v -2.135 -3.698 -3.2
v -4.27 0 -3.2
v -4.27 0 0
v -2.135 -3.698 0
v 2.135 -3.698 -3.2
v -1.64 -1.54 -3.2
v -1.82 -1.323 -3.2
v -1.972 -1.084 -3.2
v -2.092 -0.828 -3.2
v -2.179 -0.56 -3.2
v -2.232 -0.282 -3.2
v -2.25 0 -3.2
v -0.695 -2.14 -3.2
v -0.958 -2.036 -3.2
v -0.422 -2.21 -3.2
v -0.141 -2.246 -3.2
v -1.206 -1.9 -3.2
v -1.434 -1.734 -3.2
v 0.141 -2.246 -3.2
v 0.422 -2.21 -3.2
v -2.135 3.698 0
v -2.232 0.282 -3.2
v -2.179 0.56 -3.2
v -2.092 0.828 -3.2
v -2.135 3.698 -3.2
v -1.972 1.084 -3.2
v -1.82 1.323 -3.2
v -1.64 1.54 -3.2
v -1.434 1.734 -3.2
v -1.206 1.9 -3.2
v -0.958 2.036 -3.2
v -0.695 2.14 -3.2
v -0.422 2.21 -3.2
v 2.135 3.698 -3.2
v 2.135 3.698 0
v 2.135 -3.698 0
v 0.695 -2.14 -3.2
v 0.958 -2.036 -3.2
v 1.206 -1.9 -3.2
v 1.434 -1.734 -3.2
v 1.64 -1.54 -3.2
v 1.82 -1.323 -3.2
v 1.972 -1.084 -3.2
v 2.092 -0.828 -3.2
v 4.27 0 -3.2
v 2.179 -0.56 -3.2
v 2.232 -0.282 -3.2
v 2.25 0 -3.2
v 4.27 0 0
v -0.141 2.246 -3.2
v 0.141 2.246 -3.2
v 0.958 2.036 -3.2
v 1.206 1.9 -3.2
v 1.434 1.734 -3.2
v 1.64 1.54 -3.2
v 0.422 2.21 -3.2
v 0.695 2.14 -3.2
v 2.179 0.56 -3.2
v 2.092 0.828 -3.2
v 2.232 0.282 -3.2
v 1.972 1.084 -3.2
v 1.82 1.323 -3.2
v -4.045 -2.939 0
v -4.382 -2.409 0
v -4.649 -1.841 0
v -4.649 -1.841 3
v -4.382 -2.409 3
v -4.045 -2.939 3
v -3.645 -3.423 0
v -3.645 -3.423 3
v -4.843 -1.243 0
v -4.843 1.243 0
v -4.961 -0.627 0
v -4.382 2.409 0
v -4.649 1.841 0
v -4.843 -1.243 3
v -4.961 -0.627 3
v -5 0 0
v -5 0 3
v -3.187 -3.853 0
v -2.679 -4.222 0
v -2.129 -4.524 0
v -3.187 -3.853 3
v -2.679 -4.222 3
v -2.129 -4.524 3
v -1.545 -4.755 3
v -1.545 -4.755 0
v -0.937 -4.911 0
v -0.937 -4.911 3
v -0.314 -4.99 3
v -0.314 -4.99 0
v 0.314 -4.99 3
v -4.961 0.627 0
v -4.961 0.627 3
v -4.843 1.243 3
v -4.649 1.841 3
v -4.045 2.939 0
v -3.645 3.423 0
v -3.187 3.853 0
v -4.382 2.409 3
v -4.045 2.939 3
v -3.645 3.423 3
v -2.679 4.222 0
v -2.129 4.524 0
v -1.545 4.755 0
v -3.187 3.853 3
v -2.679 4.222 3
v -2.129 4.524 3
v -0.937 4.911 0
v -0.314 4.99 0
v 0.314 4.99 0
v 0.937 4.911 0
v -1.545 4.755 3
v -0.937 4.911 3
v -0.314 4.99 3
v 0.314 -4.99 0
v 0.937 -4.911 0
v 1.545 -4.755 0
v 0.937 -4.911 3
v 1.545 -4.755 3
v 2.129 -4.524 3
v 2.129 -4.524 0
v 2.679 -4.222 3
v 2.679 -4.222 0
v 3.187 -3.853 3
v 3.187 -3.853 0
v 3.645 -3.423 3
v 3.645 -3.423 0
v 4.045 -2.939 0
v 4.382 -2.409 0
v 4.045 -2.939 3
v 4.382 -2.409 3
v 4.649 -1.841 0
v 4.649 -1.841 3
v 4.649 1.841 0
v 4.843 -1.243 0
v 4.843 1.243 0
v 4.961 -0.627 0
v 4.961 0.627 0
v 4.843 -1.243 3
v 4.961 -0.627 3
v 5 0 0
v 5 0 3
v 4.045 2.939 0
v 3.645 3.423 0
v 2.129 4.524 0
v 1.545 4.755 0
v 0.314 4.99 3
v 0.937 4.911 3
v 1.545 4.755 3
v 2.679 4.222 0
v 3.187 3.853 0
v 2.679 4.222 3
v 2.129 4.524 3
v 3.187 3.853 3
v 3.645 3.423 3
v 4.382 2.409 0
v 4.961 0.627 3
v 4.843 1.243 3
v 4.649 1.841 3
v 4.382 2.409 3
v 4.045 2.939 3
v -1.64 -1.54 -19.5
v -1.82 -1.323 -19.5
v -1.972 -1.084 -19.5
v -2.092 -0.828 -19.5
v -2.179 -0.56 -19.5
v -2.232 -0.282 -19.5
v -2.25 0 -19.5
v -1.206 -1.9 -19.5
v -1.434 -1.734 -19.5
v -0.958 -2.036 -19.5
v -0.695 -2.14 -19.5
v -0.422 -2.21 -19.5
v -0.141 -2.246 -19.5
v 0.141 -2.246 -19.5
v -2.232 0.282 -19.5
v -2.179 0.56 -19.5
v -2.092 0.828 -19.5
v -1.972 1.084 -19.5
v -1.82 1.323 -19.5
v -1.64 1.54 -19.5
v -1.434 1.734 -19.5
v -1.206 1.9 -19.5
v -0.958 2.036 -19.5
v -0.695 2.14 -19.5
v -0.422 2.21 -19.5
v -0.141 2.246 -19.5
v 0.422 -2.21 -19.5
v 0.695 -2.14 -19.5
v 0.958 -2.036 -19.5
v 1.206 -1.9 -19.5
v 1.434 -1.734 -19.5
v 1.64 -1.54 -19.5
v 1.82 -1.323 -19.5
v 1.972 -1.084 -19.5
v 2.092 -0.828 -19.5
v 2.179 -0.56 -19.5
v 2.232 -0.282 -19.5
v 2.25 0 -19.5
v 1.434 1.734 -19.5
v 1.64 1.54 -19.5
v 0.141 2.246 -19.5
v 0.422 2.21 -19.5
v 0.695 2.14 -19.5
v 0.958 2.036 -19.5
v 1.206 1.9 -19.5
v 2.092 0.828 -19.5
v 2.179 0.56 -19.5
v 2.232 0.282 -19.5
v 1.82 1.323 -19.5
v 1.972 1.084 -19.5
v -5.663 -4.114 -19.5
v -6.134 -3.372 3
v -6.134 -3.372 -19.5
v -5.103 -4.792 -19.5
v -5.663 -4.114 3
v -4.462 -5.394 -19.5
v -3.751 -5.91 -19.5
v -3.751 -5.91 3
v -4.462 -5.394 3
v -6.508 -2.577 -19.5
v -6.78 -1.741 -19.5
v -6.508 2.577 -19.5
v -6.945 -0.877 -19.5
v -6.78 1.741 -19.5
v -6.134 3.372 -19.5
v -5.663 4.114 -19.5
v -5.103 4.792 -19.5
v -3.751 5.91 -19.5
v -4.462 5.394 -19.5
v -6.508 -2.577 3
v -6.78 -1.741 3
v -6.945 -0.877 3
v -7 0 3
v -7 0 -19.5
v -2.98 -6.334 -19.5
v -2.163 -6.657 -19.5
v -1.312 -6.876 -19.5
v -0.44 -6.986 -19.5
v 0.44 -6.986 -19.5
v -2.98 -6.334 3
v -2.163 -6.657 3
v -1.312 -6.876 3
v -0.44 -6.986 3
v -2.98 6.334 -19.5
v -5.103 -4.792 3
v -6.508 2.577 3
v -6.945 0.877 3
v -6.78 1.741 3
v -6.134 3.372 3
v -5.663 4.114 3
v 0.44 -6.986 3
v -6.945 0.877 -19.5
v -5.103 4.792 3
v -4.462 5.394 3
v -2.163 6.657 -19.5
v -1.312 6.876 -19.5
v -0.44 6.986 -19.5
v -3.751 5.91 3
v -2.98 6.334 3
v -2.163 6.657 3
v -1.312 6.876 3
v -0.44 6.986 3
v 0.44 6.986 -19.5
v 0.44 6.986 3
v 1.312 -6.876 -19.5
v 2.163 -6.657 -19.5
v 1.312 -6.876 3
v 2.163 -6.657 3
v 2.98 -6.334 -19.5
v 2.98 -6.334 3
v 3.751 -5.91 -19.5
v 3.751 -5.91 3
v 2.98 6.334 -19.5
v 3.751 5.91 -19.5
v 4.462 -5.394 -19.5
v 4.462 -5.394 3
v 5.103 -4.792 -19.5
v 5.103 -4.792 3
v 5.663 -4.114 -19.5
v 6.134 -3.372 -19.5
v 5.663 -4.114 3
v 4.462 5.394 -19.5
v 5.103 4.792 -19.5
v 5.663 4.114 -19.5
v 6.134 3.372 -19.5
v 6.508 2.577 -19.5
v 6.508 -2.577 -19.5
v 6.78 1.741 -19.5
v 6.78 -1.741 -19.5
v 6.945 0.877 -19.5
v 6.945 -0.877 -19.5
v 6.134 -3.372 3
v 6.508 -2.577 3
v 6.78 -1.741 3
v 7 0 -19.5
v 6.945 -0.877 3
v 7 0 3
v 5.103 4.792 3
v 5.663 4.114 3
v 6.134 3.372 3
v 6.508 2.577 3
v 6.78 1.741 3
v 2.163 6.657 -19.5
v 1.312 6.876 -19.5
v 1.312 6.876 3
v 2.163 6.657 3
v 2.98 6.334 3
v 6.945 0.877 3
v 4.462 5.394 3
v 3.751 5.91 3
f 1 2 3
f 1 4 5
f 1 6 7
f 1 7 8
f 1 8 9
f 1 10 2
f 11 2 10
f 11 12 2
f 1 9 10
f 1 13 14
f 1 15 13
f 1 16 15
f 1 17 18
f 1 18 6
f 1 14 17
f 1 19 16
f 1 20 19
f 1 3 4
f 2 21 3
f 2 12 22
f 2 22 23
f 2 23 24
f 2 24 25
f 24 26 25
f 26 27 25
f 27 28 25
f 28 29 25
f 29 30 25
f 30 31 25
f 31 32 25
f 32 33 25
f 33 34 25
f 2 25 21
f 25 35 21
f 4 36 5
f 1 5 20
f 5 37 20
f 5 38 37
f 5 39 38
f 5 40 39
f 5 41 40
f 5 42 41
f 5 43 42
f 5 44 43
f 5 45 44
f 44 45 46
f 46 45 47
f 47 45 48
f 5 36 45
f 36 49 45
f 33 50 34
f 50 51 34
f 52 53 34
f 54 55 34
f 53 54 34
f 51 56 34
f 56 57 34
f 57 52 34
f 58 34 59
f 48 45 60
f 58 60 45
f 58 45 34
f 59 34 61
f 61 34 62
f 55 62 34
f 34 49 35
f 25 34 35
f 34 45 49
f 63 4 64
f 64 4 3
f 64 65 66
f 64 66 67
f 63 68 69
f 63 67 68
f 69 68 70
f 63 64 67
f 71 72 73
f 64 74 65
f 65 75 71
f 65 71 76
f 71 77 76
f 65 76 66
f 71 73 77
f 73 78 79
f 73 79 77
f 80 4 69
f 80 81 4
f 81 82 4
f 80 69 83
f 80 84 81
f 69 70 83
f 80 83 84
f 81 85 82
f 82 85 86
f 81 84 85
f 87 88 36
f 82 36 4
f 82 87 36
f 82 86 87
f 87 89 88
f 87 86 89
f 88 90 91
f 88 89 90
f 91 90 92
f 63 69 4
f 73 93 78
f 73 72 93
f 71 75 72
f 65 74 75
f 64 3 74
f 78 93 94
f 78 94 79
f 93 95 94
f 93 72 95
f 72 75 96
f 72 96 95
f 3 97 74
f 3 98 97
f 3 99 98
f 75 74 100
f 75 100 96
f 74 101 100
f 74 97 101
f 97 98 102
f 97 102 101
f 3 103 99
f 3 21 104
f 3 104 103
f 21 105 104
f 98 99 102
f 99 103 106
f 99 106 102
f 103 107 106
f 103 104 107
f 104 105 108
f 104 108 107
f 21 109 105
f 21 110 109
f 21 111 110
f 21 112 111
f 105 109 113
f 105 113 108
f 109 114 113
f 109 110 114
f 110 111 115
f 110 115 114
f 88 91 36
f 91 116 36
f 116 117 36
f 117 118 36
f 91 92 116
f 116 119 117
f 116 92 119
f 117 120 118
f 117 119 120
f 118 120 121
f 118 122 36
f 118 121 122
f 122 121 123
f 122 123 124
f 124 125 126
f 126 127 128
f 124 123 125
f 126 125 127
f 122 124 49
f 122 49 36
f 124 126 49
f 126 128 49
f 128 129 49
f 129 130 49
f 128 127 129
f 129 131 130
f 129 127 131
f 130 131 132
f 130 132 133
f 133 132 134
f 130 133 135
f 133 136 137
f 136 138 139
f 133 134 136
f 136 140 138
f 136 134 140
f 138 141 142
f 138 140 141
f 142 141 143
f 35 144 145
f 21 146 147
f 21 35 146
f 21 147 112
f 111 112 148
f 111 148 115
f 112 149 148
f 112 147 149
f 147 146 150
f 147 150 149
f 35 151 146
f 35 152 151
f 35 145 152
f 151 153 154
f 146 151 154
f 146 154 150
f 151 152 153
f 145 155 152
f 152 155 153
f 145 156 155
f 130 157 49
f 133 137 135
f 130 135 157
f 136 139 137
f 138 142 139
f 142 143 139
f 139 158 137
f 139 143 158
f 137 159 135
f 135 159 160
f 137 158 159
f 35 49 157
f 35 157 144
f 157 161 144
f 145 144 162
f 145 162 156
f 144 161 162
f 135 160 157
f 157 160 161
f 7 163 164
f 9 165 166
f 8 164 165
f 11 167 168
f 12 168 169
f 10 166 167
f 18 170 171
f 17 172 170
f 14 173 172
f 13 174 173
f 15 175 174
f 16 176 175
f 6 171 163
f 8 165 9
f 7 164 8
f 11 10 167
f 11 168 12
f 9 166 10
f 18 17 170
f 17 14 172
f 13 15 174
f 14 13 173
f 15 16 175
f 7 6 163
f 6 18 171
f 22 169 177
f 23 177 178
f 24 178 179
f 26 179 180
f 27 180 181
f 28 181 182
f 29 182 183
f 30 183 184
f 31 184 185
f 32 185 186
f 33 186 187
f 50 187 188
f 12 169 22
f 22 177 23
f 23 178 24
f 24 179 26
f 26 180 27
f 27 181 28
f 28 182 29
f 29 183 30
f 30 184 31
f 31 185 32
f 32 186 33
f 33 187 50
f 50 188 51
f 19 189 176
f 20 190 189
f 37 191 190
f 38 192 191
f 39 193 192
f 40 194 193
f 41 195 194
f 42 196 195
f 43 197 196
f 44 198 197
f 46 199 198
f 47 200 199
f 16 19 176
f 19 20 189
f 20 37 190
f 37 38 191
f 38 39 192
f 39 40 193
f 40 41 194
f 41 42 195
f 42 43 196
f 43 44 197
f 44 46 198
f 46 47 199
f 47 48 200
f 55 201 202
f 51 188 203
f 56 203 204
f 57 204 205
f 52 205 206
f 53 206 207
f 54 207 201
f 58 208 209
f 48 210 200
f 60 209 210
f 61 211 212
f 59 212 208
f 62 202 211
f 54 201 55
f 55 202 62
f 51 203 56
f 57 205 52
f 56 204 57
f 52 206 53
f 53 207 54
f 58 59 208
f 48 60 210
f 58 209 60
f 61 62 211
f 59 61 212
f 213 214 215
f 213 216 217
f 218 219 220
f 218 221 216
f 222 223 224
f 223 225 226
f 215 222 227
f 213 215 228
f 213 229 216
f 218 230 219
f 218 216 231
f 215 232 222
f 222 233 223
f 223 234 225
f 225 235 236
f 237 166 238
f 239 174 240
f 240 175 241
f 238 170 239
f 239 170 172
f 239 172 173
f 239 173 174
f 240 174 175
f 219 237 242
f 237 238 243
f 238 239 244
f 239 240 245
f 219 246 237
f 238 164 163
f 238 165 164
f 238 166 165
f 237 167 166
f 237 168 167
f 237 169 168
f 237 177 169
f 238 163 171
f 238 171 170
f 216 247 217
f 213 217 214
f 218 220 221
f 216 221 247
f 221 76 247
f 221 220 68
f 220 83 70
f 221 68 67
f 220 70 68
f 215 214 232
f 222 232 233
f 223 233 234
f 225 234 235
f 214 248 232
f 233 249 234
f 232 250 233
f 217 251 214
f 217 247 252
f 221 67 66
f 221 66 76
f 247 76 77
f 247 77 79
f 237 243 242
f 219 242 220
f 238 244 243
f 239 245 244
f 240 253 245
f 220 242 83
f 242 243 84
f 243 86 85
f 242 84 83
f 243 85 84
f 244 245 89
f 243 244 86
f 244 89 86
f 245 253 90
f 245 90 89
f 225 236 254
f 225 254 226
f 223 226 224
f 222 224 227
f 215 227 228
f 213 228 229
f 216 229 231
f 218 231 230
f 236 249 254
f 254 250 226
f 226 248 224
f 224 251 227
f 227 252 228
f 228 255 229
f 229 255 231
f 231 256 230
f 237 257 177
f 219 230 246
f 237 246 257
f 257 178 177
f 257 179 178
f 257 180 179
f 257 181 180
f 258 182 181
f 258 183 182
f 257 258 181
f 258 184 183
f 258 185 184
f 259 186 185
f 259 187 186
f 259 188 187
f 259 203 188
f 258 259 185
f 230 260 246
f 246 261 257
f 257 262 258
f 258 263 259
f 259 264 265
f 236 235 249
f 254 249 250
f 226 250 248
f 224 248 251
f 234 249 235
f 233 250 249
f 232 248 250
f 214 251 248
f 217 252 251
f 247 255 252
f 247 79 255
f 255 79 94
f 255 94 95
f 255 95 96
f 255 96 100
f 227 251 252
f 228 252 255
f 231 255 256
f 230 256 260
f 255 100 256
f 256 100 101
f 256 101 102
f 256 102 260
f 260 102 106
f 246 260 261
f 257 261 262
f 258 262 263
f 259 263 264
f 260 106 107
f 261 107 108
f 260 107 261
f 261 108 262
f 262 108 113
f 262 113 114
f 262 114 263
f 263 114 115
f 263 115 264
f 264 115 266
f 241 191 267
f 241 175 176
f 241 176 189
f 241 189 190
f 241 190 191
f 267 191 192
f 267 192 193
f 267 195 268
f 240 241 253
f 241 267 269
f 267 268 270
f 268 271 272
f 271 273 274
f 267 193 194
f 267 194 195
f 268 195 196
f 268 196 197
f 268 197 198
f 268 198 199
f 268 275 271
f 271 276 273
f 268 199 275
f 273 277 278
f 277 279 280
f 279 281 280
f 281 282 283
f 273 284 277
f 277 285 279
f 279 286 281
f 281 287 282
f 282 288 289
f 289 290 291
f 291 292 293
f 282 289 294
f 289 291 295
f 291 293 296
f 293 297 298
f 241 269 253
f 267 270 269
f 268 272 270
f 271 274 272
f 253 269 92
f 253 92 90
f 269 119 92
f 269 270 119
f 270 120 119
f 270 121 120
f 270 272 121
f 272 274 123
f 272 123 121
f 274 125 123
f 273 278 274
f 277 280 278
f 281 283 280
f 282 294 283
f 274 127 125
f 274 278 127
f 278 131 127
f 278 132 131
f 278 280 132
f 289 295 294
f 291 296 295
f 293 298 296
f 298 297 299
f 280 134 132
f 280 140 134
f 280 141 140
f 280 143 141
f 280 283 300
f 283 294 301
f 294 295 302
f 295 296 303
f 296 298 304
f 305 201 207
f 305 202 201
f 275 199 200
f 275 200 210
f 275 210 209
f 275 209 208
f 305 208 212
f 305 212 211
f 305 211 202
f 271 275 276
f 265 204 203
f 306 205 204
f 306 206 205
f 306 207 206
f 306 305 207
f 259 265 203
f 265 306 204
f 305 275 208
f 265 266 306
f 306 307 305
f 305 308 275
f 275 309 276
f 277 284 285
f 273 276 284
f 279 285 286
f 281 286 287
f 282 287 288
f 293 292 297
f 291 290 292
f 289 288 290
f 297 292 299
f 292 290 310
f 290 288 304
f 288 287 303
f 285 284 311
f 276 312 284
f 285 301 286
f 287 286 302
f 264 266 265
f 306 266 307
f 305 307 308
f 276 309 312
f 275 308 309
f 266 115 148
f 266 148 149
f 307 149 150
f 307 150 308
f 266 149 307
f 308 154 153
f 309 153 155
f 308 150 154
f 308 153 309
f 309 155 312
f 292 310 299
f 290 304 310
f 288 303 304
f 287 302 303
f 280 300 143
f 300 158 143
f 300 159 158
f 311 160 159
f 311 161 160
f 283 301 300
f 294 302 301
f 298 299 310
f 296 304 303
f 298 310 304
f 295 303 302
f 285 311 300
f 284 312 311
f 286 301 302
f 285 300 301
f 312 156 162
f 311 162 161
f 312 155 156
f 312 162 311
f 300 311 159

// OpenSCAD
$fn = 50;

difference() {
	union() {
		translate(v = [0, 0, -19.5]) {
			cylinder(h = 22.5, r = 7.0);
		}
	}
	union() {
		translate(v = [0, 0, 0]) {
			rotate(a = [0, 0, 0]) {
				difference() {
					union() {
						translate(v = [0, 0, -3.2]) {
							linear_extrude(height = 3.2) {
								polygon(points = [[4.2698, 0.0], [2.1349000000000005, 3.697755269078796], [-2.134899999999999, 3.6977552690787965], [-4.2698, 5.228996902999369e-16], [-2.134900000000002, -3.6977552690787956], [2.1348999999999974, -3.697755269078798]]);
							}
						}
					}
					union();
				}
			}
		}
		#cylinder(h = 3, r = 5.0);
		#translate(v = [0, 0, -100.0]) {
			cylinder(h = 200, r = 2.25);
		}
	}
}
